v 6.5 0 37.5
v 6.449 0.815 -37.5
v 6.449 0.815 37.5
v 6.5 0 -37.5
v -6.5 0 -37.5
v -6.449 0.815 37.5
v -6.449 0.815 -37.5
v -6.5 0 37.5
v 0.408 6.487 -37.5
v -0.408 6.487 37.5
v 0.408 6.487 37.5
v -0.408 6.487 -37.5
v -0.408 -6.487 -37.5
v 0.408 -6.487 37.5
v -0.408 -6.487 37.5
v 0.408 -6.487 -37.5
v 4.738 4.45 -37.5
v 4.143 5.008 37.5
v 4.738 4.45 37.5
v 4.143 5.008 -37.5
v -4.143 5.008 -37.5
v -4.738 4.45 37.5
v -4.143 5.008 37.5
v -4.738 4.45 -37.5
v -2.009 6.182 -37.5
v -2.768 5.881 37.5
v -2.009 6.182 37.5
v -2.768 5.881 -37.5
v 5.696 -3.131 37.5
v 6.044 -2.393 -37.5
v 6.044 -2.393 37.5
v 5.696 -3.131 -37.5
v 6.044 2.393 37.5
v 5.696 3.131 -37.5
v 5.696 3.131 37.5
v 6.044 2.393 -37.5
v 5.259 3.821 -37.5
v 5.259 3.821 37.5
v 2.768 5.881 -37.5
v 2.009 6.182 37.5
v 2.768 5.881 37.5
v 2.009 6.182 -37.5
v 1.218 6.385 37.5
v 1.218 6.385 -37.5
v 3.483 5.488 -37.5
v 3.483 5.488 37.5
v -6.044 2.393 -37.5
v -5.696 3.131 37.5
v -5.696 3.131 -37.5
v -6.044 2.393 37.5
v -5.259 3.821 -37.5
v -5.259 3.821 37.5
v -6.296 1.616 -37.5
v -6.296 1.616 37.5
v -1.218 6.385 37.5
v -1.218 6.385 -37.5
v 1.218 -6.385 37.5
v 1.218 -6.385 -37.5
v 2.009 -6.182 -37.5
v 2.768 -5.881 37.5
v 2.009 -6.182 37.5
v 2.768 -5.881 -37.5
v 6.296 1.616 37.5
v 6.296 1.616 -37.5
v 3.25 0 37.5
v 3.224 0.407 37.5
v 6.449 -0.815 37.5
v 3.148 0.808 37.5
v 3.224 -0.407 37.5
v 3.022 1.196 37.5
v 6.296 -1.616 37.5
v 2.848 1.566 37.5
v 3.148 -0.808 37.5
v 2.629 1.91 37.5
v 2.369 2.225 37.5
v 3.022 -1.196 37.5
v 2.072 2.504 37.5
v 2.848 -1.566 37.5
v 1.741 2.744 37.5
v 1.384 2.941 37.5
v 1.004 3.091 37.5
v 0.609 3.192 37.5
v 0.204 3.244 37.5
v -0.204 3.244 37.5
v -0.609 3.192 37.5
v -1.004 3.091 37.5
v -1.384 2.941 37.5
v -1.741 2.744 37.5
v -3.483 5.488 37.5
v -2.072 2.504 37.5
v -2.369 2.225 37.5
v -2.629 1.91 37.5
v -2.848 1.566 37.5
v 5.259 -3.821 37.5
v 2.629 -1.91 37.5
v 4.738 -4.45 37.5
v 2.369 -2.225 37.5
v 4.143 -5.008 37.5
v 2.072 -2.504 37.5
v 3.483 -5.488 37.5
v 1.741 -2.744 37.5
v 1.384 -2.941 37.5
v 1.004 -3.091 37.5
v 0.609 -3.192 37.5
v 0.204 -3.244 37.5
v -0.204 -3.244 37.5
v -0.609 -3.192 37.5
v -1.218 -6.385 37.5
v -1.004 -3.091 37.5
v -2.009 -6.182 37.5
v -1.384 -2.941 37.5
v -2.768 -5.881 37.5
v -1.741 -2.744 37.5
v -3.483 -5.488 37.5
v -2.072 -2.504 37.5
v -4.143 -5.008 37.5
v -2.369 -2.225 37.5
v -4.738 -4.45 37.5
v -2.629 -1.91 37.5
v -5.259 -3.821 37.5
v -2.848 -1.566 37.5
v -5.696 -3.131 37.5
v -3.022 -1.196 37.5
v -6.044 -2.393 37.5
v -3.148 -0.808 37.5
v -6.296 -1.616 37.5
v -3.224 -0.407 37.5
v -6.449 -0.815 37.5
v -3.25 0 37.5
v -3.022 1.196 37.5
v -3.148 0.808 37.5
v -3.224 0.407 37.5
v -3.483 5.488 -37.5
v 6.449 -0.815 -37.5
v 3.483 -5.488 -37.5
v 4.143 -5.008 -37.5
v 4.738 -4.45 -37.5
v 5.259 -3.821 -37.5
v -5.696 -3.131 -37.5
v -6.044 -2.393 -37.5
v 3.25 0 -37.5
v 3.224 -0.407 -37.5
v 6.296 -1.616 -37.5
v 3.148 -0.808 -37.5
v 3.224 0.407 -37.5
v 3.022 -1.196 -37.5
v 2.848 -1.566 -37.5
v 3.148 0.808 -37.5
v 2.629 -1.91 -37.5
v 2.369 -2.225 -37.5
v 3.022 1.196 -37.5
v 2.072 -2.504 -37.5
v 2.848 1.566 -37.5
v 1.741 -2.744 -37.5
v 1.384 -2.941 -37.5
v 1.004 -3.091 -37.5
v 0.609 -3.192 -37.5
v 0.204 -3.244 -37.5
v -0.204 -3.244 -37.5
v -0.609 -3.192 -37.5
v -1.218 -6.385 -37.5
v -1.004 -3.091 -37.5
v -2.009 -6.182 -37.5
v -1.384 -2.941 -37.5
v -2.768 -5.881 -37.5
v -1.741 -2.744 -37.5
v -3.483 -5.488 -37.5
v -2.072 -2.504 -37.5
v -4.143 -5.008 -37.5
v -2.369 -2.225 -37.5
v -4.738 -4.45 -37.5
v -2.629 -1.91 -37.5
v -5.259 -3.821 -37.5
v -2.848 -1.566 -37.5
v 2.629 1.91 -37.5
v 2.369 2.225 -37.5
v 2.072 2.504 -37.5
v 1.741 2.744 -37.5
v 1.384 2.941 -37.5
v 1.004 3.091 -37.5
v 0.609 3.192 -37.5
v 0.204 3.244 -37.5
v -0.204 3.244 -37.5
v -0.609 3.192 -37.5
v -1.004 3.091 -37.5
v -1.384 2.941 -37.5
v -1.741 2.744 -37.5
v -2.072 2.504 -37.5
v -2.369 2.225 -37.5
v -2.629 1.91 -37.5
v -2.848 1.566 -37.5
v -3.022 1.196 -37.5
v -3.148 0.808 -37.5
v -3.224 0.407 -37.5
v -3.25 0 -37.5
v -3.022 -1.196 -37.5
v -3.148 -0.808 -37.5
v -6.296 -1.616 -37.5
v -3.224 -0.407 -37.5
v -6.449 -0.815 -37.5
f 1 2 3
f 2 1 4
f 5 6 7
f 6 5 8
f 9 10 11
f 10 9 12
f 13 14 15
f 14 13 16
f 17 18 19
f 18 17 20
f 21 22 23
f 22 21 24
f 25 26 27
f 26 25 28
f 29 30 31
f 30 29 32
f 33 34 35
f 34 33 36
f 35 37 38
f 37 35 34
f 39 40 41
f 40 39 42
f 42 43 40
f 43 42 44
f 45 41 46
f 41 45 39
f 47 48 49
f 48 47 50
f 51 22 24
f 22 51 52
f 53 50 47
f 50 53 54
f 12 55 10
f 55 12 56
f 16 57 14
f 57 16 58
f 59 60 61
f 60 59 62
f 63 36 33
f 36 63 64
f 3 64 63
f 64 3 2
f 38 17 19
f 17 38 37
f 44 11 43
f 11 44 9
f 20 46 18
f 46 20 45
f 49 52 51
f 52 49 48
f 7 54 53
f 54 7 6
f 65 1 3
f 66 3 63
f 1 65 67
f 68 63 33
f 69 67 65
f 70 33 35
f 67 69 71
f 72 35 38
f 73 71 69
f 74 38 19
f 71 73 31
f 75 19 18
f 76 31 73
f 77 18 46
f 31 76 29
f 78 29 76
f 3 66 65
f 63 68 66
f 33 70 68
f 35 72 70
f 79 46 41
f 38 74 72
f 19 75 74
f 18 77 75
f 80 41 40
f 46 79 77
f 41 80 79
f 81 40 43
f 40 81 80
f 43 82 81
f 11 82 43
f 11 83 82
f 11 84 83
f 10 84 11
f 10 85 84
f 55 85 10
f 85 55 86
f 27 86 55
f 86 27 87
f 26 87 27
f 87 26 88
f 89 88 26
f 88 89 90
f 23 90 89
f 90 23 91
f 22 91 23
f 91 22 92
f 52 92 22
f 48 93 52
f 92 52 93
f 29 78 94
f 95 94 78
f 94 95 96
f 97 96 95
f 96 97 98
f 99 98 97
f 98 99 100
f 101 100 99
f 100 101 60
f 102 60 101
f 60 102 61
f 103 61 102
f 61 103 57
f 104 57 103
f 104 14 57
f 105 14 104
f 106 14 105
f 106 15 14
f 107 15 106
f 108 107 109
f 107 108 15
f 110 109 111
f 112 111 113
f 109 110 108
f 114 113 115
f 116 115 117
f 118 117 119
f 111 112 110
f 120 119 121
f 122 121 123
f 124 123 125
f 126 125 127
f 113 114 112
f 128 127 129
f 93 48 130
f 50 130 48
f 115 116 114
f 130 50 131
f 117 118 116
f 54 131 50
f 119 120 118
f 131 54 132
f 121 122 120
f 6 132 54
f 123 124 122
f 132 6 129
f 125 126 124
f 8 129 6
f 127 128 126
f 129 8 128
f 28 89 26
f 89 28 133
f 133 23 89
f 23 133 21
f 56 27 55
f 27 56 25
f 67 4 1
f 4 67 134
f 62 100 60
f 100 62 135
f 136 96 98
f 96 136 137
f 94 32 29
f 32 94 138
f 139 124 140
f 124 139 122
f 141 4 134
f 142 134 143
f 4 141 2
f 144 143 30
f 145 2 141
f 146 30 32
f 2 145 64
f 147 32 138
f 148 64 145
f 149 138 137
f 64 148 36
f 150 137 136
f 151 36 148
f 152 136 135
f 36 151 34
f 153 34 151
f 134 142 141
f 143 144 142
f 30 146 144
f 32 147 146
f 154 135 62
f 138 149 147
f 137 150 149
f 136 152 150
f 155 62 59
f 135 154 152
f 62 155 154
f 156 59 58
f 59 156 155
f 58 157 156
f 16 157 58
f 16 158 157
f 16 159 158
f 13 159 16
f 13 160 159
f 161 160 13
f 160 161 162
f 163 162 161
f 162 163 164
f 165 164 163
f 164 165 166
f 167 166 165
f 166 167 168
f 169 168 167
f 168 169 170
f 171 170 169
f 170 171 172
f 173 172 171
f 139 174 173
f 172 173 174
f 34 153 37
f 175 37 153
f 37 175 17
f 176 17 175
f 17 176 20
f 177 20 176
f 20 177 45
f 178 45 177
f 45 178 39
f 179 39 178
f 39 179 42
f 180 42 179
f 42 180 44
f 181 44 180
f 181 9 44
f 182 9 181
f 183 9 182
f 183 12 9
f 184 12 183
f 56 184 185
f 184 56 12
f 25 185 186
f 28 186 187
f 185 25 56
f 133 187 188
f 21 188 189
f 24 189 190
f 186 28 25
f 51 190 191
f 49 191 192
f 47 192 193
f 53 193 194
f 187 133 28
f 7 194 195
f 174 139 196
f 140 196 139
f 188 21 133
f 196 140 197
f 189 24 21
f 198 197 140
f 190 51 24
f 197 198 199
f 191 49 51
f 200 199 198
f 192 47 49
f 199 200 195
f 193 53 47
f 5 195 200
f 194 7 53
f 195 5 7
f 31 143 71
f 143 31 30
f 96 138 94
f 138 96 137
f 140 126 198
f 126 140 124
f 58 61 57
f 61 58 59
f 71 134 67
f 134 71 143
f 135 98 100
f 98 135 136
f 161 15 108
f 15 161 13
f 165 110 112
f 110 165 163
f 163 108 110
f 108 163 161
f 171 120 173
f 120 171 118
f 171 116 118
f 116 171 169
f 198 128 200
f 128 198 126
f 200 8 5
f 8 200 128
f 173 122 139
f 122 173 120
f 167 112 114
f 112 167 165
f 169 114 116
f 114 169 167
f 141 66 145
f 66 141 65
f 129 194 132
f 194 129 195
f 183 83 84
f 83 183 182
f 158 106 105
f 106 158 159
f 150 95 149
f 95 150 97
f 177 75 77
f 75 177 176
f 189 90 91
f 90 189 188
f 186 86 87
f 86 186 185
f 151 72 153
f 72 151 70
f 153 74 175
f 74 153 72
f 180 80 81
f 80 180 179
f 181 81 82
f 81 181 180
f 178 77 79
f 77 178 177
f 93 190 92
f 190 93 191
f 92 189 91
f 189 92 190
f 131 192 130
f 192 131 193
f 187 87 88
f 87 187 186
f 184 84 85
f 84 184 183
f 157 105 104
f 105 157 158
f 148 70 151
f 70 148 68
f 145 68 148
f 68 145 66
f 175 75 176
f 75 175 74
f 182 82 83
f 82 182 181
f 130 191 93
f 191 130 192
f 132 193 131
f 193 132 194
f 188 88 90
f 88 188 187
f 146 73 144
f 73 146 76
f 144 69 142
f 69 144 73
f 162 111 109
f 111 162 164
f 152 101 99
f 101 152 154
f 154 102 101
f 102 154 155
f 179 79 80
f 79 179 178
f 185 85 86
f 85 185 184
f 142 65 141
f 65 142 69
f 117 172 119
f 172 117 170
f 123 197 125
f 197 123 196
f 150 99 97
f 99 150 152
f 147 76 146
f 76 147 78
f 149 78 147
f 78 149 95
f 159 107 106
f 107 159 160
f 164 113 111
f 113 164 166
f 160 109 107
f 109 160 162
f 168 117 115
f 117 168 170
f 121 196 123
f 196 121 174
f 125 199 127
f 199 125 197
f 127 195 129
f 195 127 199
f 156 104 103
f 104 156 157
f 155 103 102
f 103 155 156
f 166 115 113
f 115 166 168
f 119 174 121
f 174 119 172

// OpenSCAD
$fn = 50;


difference() {
	union() {
		translate(v = [0, 0, -37.5000000000]) {
			cylinder(h = 75, r = 6.5000000000);
		}
	}
	union() {
		translate(v = [0, 0, -100.0000000000]) {
			cylinder(h = 200, r = 3.2500000000);
		}
	}
}
